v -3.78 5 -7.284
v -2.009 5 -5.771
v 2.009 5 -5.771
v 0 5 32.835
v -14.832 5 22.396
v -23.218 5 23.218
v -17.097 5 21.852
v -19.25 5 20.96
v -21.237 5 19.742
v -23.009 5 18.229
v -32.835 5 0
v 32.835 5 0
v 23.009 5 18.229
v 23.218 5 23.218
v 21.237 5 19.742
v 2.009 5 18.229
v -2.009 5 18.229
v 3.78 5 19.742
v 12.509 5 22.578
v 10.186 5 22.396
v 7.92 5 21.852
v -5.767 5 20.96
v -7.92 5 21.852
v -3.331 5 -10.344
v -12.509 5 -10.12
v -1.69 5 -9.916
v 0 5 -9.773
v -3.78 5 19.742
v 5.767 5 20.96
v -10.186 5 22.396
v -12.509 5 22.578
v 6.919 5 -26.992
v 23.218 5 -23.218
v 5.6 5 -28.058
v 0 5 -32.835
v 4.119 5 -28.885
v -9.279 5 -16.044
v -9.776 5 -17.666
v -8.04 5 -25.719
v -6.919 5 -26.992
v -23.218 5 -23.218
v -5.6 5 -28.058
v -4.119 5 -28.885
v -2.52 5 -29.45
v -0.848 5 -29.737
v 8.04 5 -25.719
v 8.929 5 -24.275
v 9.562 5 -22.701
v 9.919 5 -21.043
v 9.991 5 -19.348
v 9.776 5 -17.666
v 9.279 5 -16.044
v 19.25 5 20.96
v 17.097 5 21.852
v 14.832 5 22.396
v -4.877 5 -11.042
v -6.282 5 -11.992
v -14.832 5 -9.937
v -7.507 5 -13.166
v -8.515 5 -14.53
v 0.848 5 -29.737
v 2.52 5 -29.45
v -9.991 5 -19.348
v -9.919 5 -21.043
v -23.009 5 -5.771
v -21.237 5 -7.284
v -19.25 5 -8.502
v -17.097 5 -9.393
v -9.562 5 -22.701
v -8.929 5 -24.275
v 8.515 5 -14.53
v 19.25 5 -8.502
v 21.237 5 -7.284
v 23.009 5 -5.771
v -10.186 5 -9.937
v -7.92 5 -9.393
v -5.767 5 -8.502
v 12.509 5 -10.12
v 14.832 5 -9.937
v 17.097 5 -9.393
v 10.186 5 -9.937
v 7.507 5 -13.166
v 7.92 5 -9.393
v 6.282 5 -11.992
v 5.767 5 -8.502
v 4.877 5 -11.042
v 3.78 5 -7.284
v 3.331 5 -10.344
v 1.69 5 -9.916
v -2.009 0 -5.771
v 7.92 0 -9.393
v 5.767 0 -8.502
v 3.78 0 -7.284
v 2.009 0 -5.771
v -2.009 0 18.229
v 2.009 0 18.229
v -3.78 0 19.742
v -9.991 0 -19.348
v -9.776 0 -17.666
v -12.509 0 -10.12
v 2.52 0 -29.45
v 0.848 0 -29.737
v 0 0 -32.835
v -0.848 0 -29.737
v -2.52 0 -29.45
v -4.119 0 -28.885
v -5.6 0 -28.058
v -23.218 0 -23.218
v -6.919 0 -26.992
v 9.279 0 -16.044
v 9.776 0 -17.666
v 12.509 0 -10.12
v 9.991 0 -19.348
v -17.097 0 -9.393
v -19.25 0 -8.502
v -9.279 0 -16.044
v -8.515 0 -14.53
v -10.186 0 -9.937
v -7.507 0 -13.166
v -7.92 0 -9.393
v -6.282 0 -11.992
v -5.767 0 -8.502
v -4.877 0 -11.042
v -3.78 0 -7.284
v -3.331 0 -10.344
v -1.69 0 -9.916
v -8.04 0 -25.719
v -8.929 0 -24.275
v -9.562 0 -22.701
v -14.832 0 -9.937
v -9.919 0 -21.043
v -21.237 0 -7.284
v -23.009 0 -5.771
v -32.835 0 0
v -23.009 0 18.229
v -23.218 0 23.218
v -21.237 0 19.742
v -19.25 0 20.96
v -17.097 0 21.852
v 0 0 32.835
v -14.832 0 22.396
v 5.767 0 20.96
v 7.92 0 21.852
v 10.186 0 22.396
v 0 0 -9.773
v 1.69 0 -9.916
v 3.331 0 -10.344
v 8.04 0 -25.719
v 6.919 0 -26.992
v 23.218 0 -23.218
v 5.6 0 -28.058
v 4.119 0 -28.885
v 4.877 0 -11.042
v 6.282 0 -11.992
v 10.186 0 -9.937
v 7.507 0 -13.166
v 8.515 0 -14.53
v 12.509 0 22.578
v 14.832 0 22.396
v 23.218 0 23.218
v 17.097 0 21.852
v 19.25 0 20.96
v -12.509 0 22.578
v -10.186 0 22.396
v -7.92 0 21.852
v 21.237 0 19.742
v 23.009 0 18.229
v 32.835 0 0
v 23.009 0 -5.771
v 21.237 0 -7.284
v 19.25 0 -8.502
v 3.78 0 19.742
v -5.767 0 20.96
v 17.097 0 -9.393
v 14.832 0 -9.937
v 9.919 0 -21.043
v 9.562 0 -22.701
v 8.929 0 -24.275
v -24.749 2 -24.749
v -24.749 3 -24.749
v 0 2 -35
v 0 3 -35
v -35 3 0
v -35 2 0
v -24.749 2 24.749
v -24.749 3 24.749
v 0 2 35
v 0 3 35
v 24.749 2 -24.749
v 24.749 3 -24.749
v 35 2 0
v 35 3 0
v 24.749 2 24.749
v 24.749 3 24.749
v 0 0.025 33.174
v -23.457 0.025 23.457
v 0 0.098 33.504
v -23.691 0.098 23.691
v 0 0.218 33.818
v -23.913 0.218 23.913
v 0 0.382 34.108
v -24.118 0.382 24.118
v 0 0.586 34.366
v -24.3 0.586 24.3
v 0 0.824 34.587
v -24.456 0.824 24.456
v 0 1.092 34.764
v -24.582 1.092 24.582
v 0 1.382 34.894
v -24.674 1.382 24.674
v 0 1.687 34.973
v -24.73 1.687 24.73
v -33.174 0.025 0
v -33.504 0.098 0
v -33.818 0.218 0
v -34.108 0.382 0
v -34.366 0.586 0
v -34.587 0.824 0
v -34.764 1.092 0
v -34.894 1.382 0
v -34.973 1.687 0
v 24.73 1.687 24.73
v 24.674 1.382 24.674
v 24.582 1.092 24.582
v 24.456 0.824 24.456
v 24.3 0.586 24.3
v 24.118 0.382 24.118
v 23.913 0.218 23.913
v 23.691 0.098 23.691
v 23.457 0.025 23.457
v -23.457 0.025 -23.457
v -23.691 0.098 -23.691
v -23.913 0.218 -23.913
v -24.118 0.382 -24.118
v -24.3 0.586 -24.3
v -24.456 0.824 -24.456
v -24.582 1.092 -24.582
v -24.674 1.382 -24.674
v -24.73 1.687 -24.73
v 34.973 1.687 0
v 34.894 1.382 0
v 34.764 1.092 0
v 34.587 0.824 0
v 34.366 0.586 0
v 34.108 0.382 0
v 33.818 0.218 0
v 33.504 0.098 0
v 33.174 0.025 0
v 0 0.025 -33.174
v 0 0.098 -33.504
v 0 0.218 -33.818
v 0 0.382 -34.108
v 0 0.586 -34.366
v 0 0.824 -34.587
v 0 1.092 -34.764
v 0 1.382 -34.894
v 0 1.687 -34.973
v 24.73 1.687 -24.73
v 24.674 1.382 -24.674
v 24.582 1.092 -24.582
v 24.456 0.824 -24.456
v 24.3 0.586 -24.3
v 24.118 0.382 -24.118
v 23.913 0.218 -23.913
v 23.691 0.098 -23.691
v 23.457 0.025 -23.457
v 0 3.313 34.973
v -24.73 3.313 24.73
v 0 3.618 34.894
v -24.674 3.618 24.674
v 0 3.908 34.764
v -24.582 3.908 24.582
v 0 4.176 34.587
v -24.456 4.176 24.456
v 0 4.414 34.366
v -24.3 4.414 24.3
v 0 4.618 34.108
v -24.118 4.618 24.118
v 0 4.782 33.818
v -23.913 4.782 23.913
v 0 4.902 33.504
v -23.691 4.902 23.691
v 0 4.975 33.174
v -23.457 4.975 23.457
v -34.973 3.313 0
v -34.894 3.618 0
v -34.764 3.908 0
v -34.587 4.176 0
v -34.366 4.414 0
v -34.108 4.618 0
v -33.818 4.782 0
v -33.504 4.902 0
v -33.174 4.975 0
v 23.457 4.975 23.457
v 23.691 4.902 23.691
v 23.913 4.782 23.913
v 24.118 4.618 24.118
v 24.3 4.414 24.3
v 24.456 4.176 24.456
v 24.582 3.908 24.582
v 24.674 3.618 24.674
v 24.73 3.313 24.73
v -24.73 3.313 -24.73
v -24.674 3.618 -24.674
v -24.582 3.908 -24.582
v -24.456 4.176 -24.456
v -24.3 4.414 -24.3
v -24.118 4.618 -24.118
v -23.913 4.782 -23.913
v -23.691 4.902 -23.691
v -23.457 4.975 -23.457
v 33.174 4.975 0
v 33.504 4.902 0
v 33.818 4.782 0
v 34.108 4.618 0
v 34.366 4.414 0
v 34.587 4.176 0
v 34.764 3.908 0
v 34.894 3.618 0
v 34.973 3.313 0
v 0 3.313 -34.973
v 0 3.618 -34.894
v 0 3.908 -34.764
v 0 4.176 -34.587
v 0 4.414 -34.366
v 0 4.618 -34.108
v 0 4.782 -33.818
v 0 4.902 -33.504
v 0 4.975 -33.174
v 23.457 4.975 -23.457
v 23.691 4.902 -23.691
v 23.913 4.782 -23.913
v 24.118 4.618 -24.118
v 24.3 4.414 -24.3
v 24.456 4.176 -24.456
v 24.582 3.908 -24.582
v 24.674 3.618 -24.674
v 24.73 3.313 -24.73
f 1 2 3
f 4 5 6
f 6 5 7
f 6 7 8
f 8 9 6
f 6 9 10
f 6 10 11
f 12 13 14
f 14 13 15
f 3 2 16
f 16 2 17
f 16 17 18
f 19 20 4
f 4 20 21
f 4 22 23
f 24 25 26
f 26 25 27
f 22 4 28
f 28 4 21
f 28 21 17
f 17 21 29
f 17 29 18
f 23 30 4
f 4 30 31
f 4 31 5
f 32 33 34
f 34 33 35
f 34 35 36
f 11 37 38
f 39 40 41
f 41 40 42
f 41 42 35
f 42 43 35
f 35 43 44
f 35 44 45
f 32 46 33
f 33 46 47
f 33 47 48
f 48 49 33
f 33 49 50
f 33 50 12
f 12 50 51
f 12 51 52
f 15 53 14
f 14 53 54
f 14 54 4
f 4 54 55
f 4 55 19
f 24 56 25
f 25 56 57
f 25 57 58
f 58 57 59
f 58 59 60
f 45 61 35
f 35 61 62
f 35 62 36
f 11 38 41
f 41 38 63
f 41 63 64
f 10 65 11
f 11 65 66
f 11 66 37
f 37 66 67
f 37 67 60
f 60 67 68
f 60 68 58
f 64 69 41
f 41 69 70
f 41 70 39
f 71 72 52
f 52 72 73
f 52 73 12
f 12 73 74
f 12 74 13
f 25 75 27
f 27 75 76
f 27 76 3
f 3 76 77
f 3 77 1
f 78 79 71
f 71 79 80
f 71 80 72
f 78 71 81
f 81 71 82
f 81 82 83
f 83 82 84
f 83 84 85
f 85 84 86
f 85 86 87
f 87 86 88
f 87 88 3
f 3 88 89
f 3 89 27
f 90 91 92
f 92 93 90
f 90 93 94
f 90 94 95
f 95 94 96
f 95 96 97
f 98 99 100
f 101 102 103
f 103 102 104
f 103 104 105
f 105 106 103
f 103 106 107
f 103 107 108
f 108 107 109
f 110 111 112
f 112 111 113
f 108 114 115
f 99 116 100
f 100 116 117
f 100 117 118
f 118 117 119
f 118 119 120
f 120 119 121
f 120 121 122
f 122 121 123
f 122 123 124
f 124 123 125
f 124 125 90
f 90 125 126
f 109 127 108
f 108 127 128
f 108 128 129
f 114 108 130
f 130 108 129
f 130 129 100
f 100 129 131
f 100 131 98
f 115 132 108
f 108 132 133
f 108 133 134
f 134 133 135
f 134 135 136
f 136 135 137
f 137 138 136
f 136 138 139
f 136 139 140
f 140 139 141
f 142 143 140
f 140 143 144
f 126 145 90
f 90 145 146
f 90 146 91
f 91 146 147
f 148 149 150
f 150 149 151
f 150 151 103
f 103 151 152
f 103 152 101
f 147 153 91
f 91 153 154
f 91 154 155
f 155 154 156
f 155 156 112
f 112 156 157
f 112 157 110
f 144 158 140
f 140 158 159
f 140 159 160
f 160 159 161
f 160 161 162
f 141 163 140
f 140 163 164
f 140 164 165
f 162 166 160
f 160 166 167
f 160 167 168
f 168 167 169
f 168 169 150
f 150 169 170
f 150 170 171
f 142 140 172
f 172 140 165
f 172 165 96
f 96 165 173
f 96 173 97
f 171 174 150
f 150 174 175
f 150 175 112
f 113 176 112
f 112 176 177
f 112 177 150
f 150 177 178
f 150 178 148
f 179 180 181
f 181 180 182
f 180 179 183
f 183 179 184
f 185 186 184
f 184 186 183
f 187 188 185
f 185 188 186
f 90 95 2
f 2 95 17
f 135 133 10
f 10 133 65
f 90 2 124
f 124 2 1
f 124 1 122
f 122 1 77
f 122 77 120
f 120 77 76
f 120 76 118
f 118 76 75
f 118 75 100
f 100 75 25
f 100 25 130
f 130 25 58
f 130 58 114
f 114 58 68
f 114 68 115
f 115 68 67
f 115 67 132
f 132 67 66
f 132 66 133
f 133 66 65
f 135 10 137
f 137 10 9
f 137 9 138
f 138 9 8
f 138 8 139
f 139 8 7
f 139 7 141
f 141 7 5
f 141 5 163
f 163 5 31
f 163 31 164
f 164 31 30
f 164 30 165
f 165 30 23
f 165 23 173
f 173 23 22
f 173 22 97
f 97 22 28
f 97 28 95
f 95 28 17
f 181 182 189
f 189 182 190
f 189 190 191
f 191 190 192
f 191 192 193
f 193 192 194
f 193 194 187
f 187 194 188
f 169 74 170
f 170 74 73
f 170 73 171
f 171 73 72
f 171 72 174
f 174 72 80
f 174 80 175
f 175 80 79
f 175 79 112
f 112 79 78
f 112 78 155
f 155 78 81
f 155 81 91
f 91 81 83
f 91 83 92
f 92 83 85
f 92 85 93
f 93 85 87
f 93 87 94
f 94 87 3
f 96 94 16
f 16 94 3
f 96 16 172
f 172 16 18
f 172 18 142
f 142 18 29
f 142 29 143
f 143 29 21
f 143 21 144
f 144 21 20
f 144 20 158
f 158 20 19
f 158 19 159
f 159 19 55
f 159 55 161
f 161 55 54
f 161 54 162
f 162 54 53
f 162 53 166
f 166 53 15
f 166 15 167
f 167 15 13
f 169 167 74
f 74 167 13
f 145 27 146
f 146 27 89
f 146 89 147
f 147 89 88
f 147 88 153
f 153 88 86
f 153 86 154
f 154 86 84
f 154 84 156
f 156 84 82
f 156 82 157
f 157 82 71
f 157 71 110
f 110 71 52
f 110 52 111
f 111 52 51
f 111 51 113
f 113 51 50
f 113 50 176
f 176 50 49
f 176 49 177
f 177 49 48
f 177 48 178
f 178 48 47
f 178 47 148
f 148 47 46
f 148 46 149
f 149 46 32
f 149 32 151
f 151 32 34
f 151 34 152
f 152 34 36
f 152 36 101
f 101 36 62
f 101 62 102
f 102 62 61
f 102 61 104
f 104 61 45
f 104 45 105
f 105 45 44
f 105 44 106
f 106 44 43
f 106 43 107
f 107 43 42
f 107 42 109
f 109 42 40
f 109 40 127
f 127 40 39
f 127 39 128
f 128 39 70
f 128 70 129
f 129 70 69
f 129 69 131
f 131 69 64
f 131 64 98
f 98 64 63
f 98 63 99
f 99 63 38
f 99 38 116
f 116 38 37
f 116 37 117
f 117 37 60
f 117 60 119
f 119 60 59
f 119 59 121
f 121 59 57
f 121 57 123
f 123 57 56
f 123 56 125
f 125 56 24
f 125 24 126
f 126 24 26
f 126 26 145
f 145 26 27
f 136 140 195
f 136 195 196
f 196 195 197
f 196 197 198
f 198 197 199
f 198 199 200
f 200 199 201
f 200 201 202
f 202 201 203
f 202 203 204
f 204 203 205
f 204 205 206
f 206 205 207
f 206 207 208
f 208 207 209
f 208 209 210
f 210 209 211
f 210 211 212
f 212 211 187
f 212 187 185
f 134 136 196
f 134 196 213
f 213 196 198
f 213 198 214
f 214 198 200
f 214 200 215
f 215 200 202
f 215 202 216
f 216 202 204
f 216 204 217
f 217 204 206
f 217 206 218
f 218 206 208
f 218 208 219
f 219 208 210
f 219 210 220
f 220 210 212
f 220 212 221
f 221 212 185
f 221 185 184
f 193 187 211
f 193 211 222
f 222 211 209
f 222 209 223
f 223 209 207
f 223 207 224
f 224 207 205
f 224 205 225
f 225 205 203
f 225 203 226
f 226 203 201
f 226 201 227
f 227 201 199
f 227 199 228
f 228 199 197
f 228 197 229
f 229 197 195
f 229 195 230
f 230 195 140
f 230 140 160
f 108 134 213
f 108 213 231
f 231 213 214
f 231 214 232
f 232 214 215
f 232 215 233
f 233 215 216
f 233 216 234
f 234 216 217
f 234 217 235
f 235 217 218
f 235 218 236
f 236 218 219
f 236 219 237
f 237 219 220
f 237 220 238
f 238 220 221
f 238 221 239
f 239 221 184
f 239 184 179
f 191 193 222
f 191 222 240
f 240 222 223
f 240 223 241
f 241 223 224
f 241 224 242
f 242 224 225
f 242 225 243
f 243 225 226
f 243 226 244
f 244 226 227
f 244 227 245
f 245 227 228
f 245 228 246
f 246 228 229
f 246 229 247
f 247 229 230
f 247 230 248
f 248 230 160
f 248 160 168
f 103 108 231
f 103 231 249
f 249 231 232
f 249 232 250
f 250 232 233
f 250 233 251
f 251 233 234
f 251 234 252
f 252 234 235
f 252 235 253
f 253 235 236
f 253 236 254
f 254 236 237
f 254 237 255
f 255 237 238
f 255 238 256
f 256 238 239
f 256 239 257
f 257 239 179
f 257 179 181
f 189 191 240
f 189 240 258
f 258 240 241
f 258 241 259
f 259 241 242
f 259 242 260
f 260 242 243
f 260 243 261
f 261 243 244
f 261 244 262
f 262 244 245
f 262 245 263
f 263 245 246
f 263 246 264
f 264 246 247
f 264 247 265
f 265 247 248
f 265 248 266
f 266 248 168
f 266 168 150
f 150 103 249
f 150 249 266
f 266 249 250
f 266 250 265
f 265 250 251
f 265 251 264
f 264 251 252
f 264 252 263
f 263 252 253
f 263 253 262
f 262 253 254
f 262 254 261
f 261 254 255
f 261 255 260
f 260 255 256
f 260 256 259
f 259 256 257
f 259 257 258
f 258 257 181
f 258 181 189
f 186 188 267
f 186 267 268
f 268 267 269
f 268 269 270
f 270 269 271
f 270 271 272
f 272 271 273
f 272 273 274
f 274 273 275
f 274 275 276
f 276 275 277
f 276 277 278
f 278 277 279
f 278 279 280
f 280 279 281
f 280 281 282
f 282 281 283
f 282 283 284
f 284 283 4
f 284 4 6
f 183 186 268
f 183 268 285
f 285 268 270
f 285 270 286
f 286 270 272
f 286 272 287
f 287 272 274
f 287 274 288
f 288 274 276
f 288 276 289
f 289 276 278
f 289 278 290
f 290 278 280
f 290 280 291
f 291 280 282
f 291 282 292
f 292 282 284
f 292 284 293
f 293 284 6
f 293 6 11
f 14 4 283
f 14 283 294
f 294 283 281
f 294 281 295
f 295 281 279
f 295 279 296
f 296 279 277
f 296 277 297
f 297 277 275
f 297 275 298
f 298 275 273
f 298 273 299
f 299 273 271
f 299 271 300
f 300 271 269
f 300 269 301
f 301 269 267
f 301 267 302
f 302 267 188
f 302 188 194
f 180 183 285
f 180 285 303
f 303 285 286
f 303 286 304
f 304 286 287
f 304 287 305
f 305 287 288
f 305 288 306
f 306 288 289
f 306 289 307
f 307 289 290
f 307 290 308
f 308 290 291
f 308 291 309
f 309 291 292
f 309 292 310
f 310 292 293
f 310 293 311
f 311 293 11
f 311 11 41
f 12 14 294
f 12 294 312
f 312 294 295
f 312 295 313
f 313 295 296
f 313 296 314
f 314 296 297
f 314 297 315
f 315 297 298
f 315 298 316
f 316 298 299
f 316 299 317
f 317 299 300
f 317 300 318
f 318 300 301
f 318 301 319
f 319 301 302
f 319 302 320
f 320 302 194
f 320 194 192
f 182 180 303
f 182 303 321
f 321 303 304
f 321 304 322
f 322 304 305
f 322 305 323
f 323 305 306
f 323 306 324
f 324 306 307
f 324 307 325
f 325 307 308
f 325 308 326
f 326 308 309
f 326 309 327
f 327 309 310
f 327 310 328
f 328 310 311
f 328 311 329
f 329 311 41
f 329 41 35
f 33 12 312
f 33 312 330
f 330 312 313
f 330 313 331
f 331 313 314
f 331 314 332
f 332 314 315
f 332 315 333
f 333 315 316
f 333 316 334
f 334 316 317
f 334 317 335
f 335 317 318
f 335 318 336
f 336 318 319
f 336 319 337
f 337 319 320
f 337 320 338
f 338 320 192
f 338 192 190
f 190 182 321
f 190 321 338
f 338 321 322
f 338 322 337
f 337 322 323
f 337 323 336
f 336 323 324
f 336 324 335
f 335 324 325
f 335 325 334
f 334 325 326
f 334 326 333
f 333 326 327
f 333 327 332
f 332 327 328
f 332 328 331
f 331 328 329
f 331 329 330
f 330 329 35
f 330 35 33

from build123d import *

# Parameters (mm, degrees)
BOSS_EXTRUDE1_DEPTH = 5
SKETCH4_W           = 21
SKETCH4_H           = 24
CUT_EXTRUDE1_DEPTH  = 5
CUT_EXTRUDE2_DEPTH  = 5
SKETCH10_W          = 47.253020793
SKETCH10_H          = 79.148030785
CUT_EXTRUDE3_DEPTH  = 5
MIRROR8_DEPTH       = 5
SKETCH11_R          = 10
CUT_EXTRUDE4_DEPTH  = 5
FILLET5_R           = 2


# Read off the part's stored shape, not the designer's step: Mirror8
with BuildPart() as part:
    # Sketch3 → Boss-Extrude1 (new body)
    with BuildSketch(Plane(origin=(0, 0, 0), x_dir=(1, 0, 0), z_dir=(0, 1, 0))):
        Polygon((35, 0), (24.748737342, 24.748737342), (0, 35), (-24.748737342, 24.748737342), (-35, 0), (-24.748737342, -24.748737342), (0, -35), (24.748737342, -24.748737342), align=None)
    extrude(amount=BOSS_EXTRUDE1_DEPTH)

    # Sketch4 → Cut-Extrude1 (cut)
    with BuildSketch(Plane(origin=(0, 5, 0), x_dir=(1, 0, 0), z_dir=(0, 1, 0))):
        with Locations((-12.508622631, -6.229175633)):
            Rectangle(SKETCH4_W, SKETCH4_H)
    extrude(amount=-CUT_EXTRUDE1_DEPTH, mode=Mode.SUBTRACT)

    # Sketch4<6> → Cut-Extrude2 (cut)
    with BuildSketch(Plane(origin=(0, 5, 0), x_dir=(1, 0, 0), z_dir=(0, 1, 0))):
        with BuildLine():
            ThreePointArc((-23.008622631, 5.770824367), (-12.508622631, 10.120066772), (-2.008622631, 5.770824367))
            Line((-2.008622631, 5.770824367), (-23.008622631, 5.770824367))
        make_face()
        with BuildLine():
            Line((-23.008622631, -18.229175633), (-2.008622631, -18.229175633))
            ThreePointArc((-2.008622631, -18.229175633), (-12.508622631, -22.578418038), (-23.008622631, -18.229175633))
        make_face()
    extrude(amount=-CUT_EXTRUDE2_DEPTH, mode=Mode.SUBTRACT)

    # Sketch10 → Cut-Extrude3 (cut)
    with BuildSketch(Plane(origin=(0, 5, 0), x_dir=(1, 0, 0), z_dir=(0, 1, 0))):
        with Locations((23.626510397, -1.493894903)):
            Rectangle(SKETCH10_W, SKETCH10_H)
    extrude(amount=-CUT_EXTRUDE3_DEPTH, mode=Mode.SUBTRACT)

    # Mirror8 outline → Mirror8 (add)
    with BuildSketch(Plane(origin=(0, 0, 0), x_dir=(1, 0, 0), z_dir=(0, 1, 0))):
        Polygon((24.748737342, 24.748737342), (0, 35), (0, -35), (24.748737342, -24.748737342), (35, 0), align=None)
        with BuildLine():
            ThreePointArc((2.008622631, 5.770824367), (12.508622631, 10.120066772), (23.008622631, 5.770824367))
            Line((23.008622631, 5.770824367), (23.008622631, -18.229175633))
            ThreePointArc((23.008622631, -18.229175633), (12.508622631, -22.578418038), (2.008622631, -18.229175633))
            Line((2.008622631, -18.229175633), (2.008622631, 5.770824367))
        make_face(mode=Mode.SUBTRACT)
    extrude(amount=MIRROR8_DEPTH)

    # Sketch11 → Cut-Extrude4 (cut)
    with BuildSketch(Plane(origin=(0, 5, 0), x_dir=(1, 0, 0), z_dir=(0, 1, 0))):
        with Locations(Location((0, 19.772592196, 0), (0, 0, 270))):
            Circle(SKETCH11_R)
    extrude(amount=-CUT_EXTRUDE4_DEPTH, mode=Mode.SUBTRACT)

    # Fillet5
    fillet5_edges = [part.edges().sort_by_distance(p)[0] for p in [
        (-12.374368671, 5, -29.874368671),
        (-29.874368671, 5, -12.374368671),
        (-29.874368671, 5, 12.374368671),
        (-12.374368671, 5, 29.874368671),
        (12.374368671, 5, -29.874368671),
        (29.874368671, 5, -12.374368671),
        (29.874368671, 5, 12.374368671),
        (12.374368671, 0, -29.874368671),
        (29.874368671, 0, -12.374368671),
        (29.874368671, 0, 12.374368671),
        (12.374368671, 0, 29.874368671),
        (12.374368671, 5, 29.874368671),
        (-12.374368671, 0, 29.874368671),
        (-29.874368671, 0, 12.374368671),
        (-29.874368671, 0, -12.374368671),
        (-12.374368671, 0, -29.874368671),
    ]]
    fillet(fillet5_edges, radius=FILLET5_R)


solid = part.part
